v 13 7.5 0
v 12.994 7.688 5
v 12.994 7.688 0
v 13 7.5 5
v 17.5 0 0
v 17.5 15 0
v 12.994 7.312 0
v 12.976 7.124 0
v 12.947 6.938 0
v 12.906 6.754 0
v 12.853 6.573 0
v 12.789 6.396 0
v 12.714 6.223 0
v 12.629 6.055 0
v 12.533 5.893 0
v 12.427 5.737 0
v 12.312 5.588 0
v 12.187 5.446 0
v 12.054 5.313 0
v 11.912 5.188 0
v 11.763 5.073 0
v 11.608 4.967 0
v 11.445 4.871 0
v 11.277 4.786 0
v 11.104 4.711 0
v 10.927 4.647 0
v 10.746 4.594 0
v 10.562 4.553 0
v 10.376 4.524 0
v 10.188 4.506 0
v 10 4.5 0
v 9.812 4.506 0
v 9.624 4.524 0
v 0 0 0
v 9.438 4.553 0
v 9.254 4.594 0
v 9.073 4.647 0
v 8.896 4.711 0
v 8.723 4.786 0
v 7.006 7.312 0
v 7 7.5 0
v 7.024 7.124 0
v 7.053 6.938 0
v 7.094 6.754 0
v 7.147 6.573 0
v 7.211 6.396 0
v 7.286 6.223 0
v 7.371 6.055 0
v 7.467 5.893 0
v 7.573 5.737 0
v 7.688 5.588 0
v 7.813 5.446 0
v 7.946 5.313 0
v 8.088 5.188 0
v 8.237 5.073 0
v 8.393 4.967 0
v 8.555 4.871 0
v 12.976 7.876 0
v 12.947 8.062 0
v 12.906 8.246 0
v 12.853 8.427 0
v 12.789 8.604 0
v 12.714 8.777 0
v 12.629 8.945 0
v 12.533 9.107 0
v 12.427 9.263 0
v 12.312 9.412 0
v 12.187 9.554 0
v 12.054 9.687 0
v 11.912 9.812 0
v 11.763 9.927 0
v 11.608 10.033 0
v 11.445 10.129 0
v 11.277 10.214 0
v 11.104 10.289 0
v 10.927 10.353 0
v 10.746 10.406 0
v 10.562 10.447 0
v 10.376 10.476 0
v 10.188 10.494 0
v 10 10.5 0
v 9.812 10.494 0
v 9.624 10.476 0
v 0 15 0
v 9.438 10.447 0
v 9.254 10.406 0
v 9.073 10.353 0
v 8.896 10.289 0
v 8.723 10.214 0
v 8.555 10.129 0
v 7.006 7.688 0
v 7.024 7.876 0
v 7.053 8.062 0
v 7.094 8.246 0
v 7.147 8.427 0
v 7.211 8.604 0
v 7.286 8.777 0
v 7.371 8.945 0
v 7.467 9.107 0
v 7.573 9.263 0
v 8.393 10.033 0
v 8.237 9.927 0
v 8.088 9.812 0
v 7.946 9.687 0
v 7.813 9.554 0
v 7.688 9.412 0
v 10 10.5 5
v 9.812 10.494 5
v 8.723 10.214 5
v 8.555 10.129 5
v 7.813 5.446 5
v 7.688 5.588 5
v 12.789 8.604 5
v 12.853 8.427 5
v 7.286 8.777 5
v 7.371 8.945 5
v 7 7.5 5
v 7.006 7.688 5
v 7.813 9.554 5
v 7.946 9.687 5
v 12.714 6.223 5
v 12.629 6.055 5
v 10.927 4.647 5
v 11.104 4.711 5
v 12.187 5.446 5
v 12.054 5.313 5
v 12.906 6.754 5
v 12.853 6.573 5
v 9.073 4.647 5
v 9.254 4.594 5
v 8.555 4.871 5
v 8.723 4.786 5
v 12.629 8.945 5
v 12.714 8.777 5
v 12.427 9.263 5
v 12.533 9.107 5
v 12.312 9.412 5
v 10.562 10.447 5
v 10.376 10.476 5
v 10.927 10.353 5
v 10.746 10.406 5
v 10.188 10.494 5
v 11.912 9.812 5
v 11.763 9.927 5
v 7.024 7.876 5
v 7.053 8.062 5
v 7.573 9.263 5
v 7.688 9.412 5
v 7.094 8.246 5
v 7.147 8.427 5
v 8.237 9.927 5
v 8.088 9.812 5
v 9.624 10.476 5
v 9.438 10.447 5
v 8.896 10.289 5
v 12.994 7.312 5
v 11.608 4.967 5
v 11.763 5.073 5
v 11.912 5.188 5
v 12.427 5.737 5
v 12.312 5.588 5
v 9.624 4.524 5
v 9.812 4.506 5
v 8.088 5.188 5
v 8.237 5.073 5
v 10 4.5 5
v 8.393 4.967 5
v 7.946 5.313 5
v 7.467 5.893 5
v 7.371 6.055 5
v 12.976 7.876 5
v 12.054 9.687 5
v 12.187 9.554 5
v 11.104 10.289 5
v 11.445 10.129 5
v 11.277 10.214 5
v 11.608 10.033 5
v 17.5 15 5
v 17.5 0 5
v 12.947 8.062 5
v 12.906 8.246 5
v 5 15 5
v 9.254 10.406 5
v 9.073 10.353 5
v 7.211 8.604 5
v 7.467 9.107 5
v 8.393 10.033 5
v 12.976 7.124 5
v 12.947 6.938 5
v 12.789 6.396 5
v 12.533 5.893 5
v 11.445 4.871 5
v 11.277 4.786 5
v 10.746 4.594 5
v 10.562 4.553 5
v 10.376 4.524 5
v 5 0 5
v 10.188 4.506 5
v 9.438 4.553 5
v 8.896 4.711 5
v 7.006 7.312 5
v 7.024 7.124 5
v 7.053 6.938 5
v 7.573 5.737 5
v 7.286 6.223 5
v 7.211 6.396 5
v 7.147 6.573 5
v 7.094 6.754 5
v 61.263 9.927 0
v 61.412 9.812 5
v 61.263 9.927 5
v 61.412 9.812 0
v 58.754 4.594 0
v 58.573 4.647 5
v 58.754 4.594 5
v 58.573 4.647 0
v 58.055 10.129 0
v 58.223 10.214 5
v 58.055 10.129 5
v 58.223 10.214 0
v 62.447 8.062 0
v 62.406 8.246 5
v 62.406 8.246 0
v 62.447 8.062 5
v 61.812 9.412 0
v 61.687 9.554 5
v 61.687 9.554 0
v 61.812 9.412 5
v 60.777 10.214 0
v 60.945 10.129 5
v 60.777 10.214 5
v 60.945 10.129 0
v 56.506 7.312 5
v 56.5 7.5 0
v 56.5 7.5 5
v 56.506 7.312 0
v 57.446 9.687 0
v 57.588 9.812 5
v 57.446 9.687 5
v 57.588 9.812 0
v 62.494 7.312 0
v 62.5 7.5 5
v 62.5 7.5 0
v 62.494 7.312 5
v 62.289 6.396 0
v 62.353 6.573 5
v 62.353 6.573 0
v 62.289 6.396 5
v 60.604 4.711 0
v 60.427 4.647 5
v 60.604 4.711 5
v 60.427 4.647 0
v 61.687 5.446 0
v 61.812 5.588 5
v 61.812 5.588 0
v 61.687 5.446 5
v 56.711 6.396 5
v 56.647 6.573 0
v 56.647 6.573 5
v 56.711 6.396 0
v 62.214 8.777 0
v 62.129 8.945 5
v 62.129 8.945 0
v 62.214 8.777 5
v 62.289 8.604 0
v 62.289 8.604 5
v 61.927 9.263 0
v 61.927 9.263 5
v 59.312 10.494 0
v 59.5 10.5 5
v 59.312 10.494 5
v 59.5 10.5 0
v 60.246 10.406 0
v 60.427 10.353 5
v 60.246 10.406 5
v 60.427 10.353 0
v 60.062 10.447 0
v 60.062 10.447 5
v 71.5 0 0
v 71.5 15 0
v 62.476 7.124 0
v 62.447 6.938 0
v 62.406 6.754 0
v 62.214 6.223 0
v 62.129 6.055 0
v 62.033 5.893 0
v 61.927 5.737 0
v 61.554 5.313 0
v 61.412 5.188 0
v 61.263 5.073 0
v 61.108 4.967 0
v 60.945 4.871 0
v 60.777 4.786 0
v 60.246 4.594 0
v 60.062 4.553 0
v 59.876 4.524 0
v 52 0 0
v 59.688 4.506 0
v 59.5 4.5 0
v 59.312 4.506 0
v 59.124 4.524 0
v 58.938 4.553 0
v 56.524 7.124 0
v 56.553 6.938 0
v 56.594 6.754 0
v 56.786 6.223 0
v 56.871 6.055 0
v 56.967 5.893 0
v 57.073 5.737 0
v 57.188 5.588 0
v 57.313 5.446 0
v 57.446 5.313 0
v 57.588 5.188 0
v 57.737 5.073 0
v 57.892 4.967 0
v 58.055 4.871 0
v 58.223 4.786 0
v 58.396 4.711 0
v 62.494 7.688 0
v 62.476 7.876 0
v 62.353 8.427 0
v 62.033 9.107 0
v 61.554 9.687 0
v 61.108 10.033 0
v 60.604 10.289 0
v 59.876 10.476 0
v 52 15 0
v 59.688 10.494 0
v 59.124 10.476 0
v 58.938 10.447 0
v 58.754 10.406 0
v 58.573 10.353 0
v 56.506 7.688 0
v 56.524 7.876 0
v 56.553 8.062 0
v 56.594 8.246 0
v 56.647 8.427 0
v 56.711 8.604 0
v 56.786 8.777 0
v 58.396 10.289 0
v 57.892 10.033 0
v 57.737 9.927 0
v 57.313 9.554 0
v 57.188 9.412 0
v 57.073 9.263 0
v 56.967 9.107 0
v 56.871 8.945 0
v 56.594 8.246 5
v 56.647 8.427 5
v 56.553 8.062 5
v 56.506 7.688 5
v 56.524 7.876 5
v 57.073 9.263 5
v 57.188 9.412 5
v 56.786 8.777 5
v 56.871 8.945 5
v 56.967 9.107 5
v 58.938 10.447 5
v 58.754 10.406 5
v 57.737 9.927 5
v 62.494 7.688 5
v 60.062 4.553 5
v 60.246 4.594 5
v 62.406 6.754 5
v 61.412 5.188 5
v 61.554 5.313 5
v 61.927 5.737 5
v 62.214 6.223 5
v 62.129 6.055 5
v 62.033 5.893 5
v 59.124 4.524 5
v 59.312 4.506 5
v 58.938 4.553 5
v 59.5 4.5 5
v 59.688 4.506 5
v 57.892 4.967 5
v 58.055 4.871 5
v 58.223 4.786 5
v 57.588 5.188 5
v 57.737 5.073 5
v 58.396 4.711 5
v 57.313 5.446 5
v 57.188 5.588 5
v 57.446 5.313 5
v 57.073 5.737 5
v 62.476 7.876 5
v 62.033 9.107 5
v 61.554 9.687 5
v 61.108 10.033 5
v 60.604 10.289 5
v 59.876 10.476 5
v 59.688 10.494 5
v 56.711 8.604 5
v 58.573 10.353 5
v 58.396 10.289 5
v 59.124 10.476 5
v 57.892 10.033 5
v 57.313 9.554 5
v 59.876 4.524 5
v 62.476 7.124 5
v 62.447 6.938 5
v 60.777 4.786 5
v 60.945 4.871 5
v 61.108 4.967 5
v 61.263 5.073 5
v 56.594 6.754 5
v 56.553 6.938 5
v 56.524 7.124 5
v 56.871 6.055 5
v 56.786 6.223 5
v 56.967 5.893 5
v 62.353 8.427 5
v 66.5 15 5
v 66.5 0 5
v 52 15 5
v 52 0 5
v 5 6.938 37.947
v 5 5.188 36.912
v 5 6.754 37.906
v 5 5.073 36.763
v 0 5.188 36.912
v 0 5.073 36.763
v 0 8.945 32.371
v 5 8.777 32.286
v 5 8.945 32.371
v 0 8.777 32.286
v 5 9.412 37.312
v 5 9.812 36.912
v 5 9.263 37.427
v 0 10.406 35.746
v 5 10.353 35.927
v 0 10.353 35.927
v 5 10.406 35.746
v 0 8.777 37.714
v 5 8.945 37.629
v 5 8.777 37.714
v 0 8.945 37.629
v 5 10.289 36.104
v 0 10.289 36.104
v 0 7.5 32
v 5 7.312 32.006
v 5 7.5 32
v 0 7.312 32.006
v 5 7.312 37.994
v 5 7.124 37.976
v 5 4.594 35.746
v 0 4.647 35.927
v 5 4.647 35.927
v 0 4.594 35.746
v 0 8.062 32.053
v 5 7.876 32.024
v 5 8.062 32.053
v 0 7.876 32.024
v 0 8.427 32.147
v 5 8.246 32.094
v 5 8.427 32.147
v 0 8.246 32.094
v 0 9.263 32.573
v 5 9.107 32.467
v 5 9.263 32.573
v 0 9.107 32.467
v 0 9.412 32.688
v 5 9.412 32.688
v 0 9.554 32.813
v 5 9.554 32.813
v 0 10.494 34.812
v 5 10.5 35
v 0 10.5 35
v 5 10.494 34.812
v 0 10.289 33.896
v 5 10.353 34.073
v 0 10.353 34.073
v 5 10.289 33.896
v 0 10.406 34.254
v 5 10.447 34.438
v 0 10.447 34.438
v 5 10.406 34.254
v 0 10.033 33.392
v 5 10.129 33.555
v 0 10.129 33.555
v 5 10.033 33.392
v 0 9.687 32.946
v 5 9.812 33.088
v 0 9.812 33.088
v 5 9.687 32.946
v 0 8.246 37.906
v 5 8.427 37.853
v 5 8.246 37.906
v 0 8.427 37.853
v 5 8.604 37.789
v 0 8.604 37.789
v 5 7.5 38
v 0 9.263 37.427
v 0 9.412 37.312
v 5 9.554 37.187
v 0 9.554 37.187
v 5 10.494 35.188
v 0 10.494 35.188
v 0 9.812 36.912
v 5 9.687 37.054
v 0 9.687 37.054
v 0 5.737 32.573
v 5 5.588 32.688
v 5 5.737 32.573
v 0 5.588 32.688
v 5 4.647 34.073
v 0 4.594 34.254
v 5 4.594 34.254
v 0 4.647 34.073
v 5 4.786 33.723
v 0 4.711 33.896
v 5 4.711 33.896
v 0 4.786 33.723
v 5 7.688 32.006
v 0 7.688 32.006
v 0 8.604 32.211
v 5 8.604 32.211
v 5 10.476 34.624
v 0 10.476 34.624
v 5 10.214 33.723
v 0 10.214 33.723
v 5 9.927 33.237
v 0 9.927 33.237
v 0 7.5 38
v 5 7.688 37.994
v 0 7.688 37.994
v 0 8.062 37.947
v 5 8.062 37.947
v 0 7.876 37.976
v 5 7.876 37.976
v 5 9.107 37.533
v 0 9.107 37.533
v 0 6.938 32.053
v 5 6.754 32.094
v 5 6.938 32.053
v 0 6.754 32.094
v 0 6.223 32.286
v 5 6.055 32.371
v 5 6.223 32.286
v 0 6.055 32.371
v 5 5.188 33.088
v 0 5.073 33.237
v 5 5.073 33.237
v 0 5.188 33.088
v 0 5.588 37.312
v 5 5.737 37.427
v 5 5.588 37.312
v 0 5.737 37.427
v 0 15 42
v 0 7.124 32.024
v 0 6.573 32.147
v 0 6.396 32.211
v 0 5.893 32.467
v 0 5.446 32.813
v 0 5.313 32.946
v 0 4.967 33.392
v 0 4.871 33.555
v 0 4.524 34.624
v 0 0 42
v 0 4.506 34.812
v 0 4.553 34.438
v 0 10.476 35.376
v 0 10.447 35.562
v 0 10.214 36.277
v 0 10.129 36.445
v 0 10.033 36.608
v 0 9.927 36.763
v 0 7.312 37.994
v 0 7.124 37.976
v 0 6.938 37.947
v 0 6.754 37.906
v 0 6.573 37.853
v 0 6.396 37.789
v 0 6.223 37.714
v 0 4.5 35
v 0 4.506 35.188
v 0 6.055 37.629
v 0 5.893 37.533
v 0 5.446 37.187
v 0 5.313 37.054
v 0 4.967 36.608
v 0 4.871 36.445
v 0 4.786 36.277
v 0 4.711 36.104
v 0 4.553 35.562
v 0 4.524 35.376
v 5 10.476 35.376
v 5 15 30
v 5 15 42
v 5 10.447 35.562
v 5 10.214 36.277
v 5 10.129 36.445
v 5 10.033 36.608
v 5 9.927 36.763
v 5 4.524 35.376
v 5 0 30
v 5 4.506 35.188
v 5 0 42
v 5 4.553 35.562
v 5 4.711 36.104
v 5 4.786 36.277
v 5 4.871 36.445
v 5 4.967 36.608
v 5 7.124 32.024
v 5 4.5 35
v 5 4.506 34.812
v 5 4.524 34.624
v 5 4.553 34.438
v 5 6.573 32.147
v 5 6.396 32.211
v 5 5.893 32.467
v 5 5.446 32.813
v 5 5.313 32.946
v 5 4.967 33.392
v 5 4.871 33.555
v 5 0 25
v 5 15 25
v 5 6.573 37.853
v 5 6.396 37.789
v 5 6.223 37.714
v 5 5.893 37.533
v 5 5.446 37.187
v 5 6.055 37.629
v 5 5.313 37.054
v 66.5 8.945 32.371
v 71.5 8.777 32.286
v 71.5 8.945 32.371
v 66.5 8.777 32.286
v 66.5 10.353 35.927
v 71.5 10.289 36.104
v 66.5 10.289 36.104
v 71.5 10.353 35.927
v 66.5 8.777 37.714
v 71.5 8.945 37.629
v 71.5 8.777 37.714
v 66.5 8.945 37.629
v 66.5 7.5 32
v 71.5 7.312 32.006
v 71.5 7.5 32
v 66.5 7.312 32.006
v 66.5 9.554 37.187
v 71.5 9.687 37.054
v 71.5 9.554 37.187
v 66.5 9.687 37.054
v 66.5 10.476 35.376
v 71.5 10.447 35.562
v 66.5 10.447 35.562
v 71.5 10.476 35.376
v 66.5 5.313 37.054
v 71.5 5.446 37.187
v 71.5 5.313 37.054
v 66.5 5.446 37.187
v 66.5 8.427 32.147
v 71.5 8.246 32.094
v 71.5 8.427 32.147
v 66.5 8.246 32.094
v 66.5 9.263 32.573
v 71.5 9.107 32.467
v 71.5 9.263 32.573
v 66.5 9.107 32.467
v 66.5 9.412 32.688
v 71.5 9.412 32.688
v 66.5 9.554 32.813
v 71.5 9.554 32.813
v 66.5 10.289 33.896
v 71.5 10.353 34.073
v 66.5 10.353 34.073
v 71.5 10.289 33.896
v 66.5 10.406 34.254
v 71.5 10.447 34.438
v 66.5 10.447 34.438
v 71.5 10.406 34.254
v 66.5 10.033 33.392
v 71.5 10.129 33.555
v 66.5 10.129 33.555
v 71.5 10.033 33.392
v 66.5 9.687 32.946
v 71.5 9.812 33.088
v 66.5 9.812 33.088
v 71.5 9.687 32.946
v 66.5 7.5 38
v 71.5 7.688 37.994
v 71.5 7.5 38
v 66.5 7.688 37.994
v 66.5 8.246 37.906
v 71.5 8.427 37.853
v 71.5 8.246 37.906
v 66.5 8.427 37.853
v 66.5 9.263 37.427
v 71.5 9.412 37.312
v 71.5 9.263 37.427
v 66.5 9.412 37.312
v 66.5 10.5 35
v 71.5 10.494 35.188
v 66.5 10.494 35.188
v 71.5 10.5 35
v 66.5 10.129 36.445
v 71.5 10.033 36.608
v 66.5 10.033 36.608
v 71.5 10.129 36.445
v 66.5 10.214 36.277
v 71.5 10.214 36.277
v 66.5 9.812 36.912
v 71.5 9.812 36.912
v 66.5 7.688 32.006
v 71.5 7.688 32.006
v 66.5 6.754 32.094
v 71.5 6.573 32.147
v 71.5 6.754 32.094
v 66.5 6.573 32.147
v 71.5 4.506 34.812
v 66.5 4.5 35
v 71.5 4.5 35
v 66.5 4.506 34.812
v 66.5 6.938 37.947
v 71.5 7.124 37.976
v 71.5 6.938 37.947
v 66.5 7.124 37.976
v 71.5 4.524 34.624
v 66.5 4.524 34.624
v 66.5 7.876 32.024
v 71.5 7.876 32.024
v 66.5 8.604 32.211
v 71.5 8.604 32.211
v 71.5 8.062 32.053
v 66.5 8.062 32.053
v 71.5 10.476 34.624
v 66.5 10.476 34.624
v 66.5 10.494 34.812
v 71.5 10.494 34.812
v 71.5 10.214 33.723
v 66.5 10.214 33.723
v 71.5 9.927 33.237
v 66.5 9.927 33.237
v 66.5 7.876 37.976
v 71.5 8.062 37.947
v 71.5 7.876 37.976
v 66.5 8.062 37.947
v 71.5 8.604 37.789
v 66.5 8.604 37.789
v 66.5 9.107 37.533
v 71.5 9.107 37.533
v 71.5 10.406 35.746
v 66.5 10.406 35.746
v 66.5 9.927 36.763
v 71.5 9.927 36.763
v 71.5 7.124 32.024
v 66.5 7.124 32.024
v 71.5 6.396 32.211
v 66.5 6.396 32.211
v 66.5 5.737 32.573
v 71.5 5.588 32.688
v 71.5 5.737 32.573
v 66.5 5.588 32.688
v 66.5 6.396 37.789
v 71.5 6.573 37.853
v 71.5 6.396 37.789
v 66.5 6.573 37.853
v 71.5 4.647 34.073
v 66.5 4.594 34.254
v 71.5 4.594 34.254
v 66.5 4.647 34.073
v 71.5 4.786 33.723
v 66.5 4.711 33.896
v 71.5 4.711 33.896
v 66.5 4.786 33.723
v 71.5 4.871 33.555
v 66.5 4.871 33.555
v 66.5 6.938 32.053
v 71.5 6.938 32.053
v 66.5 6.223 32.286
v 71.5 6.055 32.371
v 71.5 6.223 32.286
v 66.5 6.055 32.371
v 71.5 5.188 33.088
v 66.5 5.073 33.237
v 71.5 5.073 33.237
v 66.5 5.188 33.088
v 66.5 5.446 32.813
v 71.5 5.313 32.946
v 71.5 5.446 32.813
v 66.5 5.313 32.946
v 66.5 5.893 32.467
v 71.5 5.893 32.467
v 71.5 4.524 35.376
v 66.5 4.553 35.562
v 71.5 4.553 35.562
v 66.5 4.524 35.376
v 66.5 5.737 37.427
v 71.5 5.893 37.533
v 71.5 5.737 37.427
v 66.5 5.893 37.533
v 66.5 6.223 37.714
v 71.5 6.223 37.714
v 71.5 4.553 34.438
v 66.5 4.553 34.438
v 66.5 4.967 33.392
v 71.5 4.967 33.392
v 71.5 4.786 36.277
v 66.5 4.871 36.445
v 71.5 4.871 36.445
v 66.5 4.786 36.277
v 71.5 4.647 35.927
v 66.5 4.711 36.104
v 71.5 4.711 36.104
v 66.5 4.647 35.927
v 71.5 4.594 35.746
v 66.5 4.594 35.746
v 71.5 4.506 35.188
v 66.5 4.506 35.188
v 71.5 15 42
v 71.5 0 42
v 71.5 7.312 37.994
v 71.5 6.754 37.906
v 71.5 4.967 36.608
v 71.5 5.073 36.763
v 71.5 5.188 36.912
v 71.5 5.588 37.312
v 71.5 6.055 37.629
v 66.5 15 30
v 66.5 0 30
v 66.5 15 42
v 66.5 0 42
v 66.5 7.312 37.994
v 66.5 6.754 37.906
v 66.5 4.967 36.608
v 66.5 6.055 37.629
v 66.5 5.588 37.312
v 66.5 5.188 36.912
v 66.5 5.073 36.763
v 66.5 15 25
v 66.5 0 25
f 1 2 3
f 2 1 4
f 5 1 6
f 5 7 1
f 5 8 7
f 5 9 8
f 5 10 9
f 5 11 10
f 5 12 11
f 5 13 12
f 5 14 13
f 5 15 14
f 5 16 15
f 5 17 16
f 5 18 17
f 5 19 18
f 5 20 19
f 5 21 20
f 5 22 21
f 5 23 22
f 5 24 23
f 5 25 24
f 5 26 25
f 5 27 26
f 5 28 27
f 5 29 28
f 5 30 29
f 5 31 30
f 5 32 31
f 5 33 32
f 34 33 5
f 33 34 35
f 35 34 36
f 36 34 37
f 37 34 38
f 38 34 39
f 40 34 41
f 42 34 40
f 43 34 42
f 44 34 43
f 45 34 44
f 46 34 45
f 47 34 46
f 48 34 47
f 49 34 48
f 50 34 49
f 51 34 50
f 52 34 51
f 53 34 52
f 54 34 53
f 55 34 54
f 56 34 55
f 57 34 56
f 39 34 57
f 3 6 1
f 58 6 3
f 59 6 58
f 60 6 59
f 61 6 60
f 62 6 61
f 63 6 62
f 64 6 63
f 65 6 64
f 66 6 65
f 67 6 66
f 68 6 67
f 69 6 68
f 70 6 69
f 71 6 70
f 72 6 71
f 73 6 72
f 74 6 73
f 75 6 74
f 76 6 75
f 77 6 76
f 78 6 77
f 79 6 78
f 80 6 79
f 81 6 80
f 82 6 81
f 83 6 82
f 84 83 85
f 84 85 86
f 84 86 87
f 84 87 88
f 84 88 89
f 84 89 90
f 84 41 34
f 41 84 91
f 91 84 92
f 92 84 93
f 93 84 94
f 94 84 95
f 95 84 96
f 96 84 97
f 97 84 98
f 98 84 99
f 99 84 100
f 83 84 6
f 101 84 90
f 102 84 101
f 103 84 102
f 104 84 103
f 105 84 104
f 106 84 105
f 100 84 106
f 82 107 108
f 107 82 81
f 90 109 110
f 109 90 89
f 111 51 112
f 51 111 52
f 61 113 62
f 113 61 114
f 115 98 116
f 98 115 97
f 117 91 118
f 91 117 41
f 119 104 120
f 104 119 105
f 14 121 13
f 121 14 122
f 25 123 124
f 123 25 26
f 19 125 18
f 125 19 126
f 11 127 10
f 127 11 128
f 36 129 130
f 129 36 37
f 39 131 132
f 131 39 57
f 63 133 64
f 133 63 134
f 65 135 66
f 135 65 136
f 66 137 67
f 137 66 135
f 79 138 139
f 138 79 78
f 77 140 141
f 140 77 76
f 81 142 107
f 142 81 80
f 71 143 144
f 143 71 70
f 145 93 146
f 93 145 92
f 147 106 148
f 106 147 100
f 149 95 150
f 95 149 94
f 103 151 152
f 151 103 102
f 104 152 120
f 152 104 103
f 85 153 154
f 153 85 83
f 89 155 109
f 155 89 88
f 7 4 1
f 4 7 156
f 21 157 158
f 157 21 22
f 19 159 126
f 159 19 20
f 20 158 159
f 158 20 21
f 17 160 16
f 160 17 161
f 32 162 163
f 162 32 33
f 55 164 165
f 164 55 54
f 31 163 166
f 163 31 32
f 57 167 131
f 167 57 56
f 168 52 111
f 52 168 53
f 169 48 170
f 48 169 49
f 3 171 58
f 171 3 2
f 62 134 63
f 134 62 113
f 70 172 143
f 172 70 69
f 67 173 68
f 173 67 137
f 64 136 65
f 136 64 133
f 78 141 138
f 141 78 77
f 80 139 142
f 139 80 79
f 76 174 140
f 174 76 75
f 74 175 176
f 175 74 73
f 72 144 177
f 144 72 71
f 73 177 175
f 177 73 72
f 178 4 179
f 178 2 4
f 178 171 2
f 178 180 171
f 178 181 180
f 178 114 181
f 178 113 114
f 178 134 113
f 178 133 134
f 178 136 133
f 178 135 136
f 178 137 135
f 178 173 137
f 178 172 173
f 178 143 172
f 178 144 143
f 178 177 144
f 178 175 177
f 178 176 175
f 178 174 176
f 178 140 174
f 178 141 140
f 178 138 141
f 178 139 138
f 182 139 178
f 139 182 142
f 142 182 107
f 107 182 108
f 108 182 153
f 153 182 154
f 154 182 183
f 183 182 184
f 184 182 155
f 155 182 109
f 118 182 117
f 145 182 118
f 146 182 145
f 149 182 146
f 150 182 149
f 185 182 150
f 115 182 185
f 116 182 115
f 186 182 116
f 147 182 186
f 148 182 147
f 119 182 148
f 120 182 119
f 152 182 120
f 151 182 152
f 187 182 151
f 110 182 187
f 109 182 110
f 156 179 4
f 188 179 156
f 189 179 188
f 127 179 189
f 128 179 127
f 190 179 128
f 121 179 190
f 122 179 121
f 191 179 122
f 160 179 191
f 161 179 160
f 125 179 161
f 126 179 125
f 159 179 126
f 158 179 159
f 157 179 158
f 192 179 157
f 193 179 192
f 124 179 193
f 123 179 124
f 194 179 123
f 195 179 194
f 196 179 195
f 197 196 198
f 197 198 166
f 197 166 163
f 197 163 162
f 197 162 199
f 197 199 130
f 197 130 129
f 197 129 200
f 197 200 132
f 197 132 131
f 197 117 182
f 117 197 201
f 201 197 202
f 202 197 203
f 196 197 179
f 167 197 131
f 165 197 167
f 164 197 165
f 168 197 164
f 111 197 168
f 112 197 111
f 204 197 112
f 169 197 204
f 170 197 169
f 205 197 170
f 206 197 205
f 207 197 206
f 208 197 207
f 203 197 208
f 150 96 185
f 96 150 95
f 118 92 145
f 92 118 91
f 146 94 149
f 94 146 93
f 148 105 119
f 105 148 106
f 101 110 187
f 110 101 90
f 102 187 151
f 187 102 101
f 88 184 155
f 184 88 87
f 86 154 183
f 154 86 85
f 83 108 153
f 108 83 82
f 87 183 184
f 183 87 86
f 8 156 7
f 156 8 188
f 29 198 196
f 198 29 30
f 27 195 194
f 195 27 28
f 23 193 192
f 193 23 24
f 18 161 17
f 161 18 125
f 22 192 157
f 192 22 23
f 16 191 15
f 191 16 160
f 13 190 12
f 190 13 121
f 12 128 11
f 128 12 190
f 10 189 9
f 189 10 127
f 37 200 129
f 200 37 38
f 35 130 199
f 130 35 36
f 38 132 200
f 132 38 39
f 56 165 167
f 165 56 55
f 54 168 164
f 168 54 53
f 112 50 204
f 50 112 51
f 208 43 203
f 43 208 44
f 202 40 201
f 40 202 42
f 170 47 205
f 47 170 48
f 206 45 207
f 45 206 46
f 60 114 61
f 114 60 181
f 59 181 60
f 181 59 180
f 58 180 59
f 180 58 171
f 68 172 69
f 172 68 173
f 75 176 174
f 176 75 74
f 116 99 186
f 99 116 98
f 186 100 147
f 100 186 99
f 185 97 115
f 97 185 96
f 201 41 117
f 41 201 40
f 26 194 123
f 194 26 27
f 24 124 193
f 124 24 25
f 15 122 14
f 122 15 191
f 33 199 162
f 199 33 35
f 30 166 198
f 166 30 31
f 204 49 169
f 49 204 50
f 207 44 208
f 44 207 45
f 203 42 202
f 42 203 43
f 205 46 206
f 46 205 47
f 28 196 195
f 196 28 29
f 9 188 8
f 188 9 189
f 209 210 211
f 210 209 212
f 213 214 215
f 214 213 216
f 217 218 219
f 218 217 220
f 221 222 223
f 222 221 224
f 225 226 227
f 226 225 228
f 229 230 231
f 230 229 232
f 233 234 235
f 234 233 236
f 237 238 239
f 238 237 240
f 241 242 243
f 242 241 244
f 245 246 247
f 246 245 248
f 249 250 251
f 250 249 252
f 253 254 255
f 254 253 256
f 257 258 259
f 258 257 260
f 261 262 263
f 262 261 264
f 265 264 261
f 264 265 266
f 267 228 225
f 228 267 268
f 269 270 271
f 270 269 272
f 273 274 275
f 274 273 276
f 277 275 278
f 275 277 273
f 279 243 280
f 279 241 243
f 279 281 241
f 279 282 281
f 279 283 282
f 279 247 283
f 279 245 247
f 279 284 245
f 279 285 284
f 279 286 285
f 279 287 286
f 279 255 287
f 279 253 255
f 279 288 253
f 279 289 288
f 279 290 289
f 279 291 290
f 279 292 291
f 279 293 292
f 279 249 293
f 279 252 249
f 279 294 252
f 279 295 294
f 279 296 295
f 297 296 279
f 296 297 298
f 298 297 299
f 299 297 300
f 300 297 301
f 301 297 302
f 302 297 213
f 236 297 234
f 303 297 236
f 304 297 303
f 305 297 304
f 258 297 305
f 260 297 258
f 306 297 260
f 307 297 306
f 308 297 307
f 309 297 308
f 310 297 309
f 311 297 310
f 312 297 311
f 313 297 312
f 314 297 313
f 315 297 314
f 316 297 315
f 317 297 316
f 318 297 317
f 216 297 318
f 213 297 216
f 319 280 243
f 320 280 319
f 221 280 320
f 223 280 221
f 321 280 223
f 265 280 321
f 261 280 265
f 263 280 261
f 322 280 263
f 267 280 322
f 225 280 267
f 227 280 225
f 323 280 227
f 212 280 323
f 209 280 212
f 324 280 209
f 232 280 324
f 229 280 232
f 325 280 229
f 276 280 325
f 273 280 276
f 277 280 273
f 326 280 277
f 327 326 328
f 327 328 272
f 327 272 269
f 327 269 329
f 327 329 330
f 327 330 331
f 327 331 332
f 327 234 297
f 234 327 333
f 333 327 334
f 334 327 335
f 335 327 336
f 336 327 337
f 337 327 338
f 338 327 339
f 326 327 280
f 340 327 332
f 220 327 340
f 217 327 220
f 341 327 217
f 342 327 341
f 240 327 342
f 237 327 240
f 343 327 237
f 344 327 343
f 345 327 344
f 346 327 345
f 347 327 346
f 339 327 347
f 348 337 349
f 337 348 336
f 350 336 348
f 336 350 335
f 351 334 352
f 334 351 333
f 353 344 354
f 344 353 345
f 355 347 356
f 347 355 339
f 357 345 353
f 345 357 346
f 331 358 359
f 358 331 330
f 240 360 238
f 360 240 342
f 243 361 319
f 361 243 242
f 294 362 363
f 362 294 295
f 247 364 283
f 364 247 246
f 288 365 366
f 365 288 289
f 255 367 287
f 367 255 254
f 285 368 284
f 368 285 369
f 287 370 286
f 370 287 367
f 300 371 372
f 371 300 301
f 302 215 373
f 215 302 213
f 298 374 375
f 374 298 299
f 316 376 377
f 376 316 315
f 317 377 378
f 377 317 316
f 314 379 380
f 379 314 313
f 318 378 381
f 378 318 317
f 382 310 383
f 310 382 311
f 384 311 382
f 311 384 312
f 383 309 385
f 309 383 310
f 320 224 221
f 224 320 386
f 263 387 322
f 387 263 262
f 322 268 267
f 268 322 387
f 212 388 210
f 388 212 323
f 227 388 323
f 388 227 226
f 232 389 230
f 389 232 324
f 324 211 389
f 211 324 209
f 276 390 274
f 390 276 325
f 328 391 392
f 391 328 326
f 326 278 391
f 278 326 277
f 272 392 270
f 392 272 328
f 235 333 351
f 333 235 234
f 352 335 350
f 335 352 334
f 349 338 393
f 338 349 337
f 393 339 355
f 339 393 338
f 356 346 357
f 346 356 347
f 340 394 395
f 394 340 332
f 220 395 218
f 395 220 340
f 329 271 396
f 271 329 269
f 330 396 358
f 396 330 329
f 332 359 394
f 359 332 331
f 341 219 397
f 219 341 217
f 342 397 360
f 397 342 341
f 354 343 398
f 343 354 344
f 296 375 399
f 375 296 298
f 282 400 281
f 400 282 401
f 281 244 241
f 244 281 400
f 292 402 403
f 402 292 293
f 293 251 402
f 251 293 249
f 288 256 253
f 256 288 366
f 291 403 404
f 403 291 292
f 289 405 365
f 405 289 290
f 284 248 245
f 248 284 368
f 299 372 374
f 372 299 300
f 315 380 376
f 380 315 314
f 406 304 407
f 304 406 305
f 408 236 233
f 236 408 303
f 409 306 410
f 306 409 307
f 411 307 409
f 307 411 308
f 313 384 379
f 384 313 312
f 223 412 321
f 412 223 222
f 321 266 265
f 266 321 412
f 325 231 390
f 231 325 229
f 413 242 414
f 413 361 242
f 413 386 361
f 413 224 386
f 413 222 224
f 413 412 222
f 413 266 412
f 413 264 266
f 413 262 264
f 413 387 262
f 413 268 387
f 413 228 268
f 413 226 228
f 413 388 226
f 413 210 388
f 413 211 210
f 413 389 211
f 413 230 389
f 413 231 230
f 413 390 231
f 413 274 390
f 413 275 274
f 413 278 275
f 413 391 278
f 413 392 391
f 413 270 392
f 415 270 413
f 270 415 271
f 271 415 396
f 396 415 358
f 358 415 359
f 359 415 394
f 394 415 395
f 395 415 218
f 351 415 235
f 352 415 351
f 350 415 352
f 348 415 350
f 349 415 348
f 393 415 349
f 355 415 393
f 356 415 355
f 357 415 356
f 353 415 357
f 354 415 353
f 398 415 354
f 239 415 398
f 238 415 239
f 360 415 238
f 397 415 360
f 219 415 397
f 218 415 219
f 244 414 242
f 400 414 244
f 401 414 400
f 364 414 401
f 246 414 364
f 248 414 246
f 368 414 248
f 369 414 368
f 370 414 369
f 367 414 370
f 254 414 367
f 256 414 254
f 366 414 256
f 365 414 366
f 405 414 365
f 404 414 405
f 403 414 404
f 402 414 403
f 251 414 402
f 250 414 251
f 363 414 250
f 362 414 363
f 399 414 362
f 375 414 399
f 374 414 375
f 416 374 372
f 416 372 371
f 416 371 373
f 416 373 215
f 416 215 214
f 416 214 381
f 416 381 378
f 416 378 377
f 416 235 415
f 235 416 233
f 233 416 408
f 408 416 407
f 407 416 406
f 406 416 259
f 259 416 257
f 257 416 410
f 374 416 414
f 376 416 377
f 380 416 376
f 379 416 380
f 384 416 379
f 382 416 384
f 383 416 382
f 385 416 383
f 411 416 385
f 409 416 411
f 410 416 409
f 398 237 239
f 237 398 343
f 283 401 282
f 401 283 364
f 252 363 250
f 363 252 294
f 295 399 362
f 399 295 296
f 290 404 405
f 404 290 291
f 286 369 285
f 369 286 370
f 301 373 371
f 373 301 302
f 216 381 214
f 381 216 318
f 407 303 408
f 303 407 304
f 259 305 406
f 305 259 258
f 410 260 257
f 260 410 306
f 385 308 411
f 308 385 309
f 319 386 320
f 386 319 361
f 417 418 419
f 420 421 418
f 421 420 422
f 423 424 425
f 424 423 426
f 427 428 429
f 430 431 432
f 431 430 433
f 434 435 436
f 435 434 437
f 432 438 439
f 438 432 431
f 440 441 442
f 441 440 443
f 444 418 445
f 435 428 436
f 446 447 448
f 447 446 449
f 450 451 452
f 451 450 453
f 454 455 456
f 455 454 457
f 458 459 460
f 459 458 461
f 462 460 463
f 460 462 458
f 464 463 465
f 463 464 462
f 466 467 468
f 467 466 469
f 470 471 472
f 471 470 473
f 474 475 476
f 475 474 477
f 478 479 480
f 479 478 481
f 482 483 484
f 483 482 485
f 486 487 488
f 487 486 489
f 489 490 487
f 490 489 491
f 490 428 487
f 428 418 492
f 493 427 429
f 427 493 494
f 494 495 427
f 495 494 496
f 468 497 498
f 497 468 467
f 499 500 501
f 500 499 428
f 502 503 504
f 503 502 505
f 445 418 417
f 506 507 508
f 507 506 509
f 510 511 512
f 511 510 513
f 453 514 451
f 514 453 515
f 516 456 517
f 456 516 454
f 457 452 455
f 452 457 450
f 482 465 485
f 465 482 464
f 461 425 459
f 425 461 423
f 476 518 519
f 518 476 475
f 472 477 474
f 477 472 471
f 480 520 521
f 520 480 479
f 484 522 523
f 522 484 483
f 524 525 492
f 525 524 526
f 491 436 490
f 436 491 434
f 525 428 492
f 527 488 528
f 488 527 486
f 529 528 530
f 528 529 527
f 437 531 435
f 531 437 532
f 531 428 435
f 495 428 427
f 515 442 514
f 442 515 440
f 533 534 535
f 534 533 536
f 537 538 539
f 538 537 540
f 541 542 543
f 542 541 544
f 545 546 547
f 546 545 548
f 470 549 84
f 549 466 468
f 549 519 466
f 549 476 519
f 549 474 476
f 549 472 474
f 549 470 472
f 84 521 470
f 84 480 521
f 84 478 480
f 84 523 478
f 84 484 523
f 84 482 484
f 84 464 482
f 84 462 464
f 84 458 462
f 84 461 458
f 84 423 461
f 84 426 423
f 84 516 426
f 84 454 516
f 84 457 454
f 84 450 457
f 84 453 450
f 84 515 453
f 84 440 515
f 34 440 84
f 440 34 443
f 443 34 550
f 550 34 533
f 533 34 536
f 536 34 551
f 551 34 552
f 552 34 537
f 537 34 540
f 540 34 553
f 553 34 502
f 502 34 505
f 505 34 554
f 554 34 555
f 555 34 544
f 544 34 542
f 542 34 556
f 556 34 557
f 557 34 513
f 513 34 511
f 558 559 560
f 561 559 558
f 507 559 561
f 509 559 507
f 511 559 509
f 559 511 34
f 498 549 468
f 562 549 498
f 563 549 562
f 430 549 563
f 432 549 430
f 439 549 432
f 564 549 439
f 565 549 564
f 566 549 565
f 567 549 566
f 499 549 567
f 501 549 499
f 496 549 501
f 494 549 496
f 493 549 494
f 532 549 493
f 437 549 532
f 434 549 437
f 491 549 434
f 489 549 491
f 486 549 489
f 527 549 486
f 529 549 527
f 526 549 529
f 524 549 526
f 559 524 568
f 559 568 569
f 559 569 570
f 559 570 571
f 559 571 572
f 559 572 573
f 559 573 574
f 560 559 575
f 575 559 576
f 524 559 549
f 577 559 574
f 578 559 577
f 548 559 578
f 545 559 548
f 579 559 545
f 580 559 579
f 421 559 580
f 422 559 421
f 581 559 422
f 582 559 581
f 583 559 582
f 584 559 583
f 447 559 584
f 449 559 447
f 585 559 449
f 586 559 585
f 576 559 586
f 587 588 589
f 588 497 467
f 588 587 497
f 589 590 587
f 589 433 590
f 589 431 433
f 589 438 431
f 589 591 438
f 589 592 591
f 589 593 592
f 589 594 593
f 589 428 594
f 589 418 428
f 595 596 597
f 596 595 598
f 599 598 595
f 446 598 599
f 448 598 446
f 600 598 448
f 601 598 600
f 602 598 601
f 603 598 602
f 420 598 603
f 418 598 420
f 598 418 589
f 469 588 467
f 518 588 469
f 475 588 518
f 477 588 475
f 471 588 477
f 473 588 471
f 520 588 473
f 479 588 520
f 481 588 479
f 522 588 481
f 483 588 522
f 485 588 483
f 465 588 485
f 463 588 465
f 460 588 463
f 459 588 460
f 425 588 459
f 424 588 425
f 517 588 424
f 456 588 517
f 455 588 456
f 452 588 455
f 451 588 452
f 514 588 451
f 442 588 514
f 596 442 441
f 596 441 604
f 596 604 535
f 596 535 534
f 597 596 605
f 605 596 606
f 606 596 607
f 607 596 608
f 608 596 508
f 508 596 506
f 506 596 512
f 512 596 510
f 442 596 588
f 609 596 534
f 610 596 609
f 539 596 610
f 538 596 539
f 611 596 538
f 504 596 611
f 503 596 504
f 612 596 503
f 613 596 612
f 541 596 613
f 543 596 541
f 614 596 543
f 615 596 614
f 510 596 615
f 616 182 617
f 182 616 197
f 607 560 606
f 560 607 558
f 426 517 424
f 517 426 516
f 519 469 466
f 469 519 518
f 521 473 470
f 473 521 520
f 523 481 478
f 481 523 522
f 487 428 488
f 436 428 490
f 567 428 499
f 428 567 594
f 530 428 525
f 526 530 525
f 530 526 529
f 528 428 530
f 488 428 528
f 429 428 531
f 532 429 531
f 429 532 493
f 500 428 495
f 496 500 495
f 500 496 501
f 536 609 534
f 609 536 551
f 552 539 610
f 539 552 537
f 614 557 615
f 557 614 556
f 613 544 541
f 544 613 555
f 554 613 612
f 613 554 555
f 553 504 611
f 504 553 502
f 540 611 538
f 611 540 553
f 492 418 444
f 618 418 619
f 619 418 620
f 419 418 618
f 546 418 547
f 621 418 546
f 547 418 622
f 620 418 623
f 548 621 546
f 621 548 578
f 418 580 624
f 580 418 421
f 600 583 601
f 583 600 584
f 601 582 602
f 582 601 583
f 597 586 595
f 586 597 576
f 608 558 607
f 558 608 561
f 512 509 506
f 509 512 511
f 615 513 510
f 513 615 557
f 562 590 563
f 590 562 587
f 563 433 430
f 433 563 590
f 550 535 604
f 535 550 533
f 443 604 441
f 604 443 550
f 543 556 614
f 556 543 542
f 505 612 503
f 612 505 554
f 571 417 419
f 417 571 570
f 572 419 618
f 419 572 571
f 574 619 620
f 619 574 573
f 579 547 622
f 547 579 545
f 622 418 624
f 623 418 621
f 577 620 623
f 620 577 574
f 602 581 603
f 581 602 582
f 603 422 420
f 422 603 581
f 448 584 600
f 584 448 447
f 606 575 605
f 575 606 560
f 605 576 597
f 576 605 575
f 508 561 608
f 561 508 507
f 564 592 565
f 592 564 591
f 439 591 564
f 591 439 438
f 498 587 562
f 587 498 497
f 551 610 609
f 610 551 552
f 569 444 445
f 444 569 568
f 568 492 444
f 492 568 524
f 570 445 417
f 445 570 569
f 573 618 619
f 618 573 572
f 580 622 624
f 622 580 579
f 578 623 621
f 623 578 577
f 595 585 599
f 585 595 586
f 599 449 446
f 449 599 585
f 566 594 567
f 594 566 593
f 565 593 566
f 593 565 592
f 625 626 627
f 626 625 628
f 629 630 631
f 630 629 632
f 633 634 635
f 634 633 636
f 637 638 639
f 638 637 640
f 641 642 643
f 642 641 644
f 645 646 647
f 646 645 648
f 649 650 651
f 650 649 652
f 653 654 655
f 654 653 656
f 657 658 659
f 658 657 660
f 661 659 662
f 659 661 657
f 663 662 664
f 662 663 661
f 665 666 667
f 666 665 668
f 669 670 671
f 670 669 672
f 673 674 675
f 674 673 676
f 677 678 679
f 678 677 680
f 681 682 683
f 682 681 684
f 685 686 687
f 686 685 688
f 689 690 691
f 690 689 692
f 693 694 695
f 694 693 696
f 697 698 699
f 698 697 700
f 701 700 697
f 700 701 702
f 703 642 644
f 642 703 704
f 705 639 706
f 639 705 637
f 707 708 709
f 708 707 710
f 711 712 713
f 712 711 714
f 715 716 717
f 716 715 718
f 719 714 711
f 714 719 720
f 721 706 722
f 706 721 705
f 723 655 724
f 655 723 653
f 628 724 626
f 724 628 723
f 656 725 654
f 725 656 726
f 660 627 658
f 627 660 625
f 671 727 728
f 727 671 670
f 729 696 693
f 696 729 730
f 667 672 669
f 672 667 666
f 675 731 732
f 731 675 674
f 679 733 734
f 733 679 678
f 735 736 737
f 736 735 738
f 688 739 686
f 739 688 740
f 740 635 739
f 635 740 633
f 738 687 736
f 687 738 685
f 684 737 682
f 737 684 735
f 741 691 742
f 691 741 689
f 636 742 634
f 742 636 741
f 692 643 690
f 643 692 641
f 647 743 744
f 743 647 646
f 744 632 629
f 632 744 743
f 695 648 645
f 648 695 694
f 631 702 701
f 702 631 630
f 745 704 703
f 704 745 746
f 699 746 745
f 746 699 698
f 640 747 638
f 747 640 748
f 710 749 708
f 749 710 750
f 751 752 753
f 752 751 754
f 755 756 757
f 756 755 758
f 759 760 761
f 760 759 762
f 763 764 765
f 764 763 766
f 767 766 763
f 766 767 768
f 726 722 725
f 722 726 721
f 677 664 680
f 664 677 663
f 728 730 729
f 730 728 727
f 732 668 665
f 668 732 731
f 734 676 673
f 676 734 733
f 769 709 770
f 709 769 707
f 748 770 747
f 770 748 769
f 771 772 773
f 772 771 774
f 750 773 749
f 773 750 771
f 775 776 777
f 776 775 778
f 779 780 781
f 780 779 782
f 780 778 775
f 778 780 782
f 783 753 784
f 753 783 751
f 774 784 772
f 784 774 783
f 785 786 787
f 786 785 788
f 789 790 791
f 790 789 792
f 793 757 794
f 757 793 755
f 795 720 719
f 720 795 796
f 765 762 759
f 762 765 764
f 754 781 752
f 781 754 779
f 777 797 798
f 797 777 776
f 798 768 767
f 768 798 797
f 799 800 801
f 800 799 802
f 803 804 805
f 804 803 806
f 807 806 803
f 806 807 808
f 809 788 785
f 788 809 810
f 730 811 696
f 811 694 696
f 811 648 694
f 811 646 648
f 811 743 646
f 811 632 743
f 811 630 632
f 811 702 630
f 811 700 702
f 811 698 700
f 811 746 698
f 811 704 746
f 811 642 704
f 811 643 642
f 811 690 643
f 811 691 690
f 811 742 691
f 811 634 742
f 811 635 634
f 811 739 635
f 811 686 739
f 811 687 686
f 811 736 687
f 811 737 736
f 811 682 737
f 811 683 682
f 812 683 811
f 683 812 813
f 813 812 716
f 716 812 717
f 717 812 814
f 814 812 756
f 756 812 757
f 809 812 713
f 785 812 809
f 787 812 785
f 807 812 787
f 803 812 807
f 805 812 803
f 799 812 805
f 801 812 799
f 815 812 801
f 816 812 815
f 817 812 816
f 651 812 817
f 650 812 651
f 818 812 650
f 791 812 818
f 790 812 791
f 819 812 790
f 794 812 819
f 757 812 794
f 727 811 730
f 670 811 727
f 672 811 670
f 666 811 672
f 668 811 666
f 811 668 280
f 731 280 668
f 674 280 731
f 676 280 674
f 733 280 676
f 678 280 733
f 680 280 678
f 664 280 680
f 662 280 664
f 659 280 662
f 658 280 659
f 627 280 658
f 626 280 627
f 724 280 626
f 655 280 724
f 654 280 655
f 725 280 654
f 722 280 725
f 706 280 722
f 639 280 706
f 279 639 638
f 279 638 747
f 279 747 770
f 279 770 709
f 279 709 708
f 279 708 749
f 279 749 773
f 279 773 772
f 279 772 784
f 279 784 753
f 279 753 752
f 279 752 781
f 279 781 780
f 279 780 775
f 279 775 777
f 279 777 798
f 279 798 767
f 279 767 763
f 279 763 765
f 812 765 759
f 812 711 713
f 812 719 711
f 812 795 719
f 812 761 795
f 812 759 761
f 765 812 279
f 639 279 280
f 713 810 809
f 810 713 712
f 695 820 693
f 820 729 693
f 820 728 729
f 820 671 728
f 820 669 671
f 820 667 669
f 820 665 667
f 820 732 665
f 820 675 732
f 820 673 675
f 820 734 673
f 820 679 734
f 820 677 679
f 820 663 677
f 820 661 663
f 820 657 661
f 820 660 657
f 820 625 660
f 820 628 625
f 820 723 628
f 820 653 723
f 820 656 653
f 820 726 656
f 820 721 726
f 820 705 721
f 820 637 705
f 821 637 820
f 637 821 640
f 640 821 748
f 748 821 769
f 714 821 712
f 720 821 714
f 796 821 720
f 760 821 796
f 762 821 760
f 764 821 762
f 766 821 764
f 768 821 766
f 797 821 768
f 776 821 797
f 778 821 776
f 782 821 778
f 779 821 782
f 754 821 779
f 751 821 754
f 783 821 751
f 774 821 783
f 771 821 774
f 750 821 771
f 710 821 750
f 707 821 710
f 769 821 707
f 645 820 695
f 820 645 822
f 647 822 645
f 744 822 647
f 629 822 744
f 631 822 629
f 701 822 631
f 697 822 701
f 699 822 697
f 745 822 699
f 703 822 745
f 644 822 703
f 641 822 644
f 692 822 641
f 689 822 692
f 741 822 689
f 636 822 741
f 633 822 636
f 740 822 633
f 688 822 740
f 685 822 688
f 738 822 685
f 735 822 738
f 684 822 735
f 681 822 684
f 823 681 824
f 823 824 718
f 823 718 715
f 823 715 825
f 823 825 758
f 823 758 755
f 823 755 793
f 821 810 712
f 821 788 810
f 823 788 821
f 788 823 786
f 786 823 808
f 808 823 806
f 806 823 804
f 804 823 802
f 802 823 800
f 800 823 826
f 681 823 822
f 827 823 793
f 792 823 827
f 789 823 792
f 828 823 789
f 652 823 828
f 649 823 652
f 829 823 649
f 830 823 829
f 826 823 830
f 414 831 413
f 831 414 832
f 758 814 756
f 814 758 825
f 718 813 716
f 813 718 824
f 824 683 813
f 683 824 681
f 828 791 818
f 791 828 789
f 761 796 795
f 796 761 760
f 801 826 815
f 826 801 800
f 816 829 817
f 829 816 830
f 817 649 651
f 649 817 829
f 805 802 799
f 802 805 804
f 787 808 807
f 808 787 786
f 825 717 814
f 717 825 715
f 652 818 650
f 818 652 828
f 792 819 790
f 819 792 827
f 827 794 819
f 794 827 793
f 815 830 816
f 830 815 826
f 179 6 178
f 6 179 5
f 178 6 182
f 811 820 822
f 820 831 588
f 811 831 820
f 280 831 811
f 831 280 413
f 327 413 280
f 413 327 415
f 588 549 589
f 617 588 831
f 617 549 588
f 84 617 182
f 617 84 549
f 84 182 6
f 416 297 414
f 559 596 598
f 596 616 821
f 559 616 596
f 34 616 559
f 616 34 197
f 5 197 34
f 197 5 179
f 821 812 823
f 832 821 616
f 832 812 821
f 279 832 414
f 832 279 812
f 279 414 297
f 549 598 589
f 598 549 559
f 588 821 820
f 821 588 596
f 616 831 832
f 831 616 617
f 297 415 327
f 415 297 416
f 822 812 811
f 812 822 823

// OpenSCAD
ScrewD = 6; ScrewRes = 100;
Height = 42; Thick = 5; SqBase = 15;

module Base(){
    union(){
        cube([17.5, SqBase, Thick]);
        cube([Thick, SqBase, Height]);
        translate([0, 0, 25]) cube([69.5, SqBase, Thick]);
        translate([52, 0, 0]) cube([17.5, SqBase, Thick]);
        translate([66.5, 0, 0]) cube([Thick, SqBase, Height]);
    }
}

module Holes(){
    translate([10, 7.5, 0]) cylinder(h=Thick, r=ScrewD/2, $fn=ScrewRes);
    translate([59.5, 7.5, 0]) cylinder(h=Thick, r=ScrewD/2, $fn=ScrewRes);
    translate([0, 7.5, 35]) rotate([0, 90, 0]) cylinder(h=Thick, r=ScrewD/2, $fn=ScrewRes);
    translate([66.5, 7.5, 35]) rotate([0, 90, 0]) cylinder(h=Thick, r=ScrewD/2, $fn=ScrewRes);
}

difference(){Base(); Holes();}
